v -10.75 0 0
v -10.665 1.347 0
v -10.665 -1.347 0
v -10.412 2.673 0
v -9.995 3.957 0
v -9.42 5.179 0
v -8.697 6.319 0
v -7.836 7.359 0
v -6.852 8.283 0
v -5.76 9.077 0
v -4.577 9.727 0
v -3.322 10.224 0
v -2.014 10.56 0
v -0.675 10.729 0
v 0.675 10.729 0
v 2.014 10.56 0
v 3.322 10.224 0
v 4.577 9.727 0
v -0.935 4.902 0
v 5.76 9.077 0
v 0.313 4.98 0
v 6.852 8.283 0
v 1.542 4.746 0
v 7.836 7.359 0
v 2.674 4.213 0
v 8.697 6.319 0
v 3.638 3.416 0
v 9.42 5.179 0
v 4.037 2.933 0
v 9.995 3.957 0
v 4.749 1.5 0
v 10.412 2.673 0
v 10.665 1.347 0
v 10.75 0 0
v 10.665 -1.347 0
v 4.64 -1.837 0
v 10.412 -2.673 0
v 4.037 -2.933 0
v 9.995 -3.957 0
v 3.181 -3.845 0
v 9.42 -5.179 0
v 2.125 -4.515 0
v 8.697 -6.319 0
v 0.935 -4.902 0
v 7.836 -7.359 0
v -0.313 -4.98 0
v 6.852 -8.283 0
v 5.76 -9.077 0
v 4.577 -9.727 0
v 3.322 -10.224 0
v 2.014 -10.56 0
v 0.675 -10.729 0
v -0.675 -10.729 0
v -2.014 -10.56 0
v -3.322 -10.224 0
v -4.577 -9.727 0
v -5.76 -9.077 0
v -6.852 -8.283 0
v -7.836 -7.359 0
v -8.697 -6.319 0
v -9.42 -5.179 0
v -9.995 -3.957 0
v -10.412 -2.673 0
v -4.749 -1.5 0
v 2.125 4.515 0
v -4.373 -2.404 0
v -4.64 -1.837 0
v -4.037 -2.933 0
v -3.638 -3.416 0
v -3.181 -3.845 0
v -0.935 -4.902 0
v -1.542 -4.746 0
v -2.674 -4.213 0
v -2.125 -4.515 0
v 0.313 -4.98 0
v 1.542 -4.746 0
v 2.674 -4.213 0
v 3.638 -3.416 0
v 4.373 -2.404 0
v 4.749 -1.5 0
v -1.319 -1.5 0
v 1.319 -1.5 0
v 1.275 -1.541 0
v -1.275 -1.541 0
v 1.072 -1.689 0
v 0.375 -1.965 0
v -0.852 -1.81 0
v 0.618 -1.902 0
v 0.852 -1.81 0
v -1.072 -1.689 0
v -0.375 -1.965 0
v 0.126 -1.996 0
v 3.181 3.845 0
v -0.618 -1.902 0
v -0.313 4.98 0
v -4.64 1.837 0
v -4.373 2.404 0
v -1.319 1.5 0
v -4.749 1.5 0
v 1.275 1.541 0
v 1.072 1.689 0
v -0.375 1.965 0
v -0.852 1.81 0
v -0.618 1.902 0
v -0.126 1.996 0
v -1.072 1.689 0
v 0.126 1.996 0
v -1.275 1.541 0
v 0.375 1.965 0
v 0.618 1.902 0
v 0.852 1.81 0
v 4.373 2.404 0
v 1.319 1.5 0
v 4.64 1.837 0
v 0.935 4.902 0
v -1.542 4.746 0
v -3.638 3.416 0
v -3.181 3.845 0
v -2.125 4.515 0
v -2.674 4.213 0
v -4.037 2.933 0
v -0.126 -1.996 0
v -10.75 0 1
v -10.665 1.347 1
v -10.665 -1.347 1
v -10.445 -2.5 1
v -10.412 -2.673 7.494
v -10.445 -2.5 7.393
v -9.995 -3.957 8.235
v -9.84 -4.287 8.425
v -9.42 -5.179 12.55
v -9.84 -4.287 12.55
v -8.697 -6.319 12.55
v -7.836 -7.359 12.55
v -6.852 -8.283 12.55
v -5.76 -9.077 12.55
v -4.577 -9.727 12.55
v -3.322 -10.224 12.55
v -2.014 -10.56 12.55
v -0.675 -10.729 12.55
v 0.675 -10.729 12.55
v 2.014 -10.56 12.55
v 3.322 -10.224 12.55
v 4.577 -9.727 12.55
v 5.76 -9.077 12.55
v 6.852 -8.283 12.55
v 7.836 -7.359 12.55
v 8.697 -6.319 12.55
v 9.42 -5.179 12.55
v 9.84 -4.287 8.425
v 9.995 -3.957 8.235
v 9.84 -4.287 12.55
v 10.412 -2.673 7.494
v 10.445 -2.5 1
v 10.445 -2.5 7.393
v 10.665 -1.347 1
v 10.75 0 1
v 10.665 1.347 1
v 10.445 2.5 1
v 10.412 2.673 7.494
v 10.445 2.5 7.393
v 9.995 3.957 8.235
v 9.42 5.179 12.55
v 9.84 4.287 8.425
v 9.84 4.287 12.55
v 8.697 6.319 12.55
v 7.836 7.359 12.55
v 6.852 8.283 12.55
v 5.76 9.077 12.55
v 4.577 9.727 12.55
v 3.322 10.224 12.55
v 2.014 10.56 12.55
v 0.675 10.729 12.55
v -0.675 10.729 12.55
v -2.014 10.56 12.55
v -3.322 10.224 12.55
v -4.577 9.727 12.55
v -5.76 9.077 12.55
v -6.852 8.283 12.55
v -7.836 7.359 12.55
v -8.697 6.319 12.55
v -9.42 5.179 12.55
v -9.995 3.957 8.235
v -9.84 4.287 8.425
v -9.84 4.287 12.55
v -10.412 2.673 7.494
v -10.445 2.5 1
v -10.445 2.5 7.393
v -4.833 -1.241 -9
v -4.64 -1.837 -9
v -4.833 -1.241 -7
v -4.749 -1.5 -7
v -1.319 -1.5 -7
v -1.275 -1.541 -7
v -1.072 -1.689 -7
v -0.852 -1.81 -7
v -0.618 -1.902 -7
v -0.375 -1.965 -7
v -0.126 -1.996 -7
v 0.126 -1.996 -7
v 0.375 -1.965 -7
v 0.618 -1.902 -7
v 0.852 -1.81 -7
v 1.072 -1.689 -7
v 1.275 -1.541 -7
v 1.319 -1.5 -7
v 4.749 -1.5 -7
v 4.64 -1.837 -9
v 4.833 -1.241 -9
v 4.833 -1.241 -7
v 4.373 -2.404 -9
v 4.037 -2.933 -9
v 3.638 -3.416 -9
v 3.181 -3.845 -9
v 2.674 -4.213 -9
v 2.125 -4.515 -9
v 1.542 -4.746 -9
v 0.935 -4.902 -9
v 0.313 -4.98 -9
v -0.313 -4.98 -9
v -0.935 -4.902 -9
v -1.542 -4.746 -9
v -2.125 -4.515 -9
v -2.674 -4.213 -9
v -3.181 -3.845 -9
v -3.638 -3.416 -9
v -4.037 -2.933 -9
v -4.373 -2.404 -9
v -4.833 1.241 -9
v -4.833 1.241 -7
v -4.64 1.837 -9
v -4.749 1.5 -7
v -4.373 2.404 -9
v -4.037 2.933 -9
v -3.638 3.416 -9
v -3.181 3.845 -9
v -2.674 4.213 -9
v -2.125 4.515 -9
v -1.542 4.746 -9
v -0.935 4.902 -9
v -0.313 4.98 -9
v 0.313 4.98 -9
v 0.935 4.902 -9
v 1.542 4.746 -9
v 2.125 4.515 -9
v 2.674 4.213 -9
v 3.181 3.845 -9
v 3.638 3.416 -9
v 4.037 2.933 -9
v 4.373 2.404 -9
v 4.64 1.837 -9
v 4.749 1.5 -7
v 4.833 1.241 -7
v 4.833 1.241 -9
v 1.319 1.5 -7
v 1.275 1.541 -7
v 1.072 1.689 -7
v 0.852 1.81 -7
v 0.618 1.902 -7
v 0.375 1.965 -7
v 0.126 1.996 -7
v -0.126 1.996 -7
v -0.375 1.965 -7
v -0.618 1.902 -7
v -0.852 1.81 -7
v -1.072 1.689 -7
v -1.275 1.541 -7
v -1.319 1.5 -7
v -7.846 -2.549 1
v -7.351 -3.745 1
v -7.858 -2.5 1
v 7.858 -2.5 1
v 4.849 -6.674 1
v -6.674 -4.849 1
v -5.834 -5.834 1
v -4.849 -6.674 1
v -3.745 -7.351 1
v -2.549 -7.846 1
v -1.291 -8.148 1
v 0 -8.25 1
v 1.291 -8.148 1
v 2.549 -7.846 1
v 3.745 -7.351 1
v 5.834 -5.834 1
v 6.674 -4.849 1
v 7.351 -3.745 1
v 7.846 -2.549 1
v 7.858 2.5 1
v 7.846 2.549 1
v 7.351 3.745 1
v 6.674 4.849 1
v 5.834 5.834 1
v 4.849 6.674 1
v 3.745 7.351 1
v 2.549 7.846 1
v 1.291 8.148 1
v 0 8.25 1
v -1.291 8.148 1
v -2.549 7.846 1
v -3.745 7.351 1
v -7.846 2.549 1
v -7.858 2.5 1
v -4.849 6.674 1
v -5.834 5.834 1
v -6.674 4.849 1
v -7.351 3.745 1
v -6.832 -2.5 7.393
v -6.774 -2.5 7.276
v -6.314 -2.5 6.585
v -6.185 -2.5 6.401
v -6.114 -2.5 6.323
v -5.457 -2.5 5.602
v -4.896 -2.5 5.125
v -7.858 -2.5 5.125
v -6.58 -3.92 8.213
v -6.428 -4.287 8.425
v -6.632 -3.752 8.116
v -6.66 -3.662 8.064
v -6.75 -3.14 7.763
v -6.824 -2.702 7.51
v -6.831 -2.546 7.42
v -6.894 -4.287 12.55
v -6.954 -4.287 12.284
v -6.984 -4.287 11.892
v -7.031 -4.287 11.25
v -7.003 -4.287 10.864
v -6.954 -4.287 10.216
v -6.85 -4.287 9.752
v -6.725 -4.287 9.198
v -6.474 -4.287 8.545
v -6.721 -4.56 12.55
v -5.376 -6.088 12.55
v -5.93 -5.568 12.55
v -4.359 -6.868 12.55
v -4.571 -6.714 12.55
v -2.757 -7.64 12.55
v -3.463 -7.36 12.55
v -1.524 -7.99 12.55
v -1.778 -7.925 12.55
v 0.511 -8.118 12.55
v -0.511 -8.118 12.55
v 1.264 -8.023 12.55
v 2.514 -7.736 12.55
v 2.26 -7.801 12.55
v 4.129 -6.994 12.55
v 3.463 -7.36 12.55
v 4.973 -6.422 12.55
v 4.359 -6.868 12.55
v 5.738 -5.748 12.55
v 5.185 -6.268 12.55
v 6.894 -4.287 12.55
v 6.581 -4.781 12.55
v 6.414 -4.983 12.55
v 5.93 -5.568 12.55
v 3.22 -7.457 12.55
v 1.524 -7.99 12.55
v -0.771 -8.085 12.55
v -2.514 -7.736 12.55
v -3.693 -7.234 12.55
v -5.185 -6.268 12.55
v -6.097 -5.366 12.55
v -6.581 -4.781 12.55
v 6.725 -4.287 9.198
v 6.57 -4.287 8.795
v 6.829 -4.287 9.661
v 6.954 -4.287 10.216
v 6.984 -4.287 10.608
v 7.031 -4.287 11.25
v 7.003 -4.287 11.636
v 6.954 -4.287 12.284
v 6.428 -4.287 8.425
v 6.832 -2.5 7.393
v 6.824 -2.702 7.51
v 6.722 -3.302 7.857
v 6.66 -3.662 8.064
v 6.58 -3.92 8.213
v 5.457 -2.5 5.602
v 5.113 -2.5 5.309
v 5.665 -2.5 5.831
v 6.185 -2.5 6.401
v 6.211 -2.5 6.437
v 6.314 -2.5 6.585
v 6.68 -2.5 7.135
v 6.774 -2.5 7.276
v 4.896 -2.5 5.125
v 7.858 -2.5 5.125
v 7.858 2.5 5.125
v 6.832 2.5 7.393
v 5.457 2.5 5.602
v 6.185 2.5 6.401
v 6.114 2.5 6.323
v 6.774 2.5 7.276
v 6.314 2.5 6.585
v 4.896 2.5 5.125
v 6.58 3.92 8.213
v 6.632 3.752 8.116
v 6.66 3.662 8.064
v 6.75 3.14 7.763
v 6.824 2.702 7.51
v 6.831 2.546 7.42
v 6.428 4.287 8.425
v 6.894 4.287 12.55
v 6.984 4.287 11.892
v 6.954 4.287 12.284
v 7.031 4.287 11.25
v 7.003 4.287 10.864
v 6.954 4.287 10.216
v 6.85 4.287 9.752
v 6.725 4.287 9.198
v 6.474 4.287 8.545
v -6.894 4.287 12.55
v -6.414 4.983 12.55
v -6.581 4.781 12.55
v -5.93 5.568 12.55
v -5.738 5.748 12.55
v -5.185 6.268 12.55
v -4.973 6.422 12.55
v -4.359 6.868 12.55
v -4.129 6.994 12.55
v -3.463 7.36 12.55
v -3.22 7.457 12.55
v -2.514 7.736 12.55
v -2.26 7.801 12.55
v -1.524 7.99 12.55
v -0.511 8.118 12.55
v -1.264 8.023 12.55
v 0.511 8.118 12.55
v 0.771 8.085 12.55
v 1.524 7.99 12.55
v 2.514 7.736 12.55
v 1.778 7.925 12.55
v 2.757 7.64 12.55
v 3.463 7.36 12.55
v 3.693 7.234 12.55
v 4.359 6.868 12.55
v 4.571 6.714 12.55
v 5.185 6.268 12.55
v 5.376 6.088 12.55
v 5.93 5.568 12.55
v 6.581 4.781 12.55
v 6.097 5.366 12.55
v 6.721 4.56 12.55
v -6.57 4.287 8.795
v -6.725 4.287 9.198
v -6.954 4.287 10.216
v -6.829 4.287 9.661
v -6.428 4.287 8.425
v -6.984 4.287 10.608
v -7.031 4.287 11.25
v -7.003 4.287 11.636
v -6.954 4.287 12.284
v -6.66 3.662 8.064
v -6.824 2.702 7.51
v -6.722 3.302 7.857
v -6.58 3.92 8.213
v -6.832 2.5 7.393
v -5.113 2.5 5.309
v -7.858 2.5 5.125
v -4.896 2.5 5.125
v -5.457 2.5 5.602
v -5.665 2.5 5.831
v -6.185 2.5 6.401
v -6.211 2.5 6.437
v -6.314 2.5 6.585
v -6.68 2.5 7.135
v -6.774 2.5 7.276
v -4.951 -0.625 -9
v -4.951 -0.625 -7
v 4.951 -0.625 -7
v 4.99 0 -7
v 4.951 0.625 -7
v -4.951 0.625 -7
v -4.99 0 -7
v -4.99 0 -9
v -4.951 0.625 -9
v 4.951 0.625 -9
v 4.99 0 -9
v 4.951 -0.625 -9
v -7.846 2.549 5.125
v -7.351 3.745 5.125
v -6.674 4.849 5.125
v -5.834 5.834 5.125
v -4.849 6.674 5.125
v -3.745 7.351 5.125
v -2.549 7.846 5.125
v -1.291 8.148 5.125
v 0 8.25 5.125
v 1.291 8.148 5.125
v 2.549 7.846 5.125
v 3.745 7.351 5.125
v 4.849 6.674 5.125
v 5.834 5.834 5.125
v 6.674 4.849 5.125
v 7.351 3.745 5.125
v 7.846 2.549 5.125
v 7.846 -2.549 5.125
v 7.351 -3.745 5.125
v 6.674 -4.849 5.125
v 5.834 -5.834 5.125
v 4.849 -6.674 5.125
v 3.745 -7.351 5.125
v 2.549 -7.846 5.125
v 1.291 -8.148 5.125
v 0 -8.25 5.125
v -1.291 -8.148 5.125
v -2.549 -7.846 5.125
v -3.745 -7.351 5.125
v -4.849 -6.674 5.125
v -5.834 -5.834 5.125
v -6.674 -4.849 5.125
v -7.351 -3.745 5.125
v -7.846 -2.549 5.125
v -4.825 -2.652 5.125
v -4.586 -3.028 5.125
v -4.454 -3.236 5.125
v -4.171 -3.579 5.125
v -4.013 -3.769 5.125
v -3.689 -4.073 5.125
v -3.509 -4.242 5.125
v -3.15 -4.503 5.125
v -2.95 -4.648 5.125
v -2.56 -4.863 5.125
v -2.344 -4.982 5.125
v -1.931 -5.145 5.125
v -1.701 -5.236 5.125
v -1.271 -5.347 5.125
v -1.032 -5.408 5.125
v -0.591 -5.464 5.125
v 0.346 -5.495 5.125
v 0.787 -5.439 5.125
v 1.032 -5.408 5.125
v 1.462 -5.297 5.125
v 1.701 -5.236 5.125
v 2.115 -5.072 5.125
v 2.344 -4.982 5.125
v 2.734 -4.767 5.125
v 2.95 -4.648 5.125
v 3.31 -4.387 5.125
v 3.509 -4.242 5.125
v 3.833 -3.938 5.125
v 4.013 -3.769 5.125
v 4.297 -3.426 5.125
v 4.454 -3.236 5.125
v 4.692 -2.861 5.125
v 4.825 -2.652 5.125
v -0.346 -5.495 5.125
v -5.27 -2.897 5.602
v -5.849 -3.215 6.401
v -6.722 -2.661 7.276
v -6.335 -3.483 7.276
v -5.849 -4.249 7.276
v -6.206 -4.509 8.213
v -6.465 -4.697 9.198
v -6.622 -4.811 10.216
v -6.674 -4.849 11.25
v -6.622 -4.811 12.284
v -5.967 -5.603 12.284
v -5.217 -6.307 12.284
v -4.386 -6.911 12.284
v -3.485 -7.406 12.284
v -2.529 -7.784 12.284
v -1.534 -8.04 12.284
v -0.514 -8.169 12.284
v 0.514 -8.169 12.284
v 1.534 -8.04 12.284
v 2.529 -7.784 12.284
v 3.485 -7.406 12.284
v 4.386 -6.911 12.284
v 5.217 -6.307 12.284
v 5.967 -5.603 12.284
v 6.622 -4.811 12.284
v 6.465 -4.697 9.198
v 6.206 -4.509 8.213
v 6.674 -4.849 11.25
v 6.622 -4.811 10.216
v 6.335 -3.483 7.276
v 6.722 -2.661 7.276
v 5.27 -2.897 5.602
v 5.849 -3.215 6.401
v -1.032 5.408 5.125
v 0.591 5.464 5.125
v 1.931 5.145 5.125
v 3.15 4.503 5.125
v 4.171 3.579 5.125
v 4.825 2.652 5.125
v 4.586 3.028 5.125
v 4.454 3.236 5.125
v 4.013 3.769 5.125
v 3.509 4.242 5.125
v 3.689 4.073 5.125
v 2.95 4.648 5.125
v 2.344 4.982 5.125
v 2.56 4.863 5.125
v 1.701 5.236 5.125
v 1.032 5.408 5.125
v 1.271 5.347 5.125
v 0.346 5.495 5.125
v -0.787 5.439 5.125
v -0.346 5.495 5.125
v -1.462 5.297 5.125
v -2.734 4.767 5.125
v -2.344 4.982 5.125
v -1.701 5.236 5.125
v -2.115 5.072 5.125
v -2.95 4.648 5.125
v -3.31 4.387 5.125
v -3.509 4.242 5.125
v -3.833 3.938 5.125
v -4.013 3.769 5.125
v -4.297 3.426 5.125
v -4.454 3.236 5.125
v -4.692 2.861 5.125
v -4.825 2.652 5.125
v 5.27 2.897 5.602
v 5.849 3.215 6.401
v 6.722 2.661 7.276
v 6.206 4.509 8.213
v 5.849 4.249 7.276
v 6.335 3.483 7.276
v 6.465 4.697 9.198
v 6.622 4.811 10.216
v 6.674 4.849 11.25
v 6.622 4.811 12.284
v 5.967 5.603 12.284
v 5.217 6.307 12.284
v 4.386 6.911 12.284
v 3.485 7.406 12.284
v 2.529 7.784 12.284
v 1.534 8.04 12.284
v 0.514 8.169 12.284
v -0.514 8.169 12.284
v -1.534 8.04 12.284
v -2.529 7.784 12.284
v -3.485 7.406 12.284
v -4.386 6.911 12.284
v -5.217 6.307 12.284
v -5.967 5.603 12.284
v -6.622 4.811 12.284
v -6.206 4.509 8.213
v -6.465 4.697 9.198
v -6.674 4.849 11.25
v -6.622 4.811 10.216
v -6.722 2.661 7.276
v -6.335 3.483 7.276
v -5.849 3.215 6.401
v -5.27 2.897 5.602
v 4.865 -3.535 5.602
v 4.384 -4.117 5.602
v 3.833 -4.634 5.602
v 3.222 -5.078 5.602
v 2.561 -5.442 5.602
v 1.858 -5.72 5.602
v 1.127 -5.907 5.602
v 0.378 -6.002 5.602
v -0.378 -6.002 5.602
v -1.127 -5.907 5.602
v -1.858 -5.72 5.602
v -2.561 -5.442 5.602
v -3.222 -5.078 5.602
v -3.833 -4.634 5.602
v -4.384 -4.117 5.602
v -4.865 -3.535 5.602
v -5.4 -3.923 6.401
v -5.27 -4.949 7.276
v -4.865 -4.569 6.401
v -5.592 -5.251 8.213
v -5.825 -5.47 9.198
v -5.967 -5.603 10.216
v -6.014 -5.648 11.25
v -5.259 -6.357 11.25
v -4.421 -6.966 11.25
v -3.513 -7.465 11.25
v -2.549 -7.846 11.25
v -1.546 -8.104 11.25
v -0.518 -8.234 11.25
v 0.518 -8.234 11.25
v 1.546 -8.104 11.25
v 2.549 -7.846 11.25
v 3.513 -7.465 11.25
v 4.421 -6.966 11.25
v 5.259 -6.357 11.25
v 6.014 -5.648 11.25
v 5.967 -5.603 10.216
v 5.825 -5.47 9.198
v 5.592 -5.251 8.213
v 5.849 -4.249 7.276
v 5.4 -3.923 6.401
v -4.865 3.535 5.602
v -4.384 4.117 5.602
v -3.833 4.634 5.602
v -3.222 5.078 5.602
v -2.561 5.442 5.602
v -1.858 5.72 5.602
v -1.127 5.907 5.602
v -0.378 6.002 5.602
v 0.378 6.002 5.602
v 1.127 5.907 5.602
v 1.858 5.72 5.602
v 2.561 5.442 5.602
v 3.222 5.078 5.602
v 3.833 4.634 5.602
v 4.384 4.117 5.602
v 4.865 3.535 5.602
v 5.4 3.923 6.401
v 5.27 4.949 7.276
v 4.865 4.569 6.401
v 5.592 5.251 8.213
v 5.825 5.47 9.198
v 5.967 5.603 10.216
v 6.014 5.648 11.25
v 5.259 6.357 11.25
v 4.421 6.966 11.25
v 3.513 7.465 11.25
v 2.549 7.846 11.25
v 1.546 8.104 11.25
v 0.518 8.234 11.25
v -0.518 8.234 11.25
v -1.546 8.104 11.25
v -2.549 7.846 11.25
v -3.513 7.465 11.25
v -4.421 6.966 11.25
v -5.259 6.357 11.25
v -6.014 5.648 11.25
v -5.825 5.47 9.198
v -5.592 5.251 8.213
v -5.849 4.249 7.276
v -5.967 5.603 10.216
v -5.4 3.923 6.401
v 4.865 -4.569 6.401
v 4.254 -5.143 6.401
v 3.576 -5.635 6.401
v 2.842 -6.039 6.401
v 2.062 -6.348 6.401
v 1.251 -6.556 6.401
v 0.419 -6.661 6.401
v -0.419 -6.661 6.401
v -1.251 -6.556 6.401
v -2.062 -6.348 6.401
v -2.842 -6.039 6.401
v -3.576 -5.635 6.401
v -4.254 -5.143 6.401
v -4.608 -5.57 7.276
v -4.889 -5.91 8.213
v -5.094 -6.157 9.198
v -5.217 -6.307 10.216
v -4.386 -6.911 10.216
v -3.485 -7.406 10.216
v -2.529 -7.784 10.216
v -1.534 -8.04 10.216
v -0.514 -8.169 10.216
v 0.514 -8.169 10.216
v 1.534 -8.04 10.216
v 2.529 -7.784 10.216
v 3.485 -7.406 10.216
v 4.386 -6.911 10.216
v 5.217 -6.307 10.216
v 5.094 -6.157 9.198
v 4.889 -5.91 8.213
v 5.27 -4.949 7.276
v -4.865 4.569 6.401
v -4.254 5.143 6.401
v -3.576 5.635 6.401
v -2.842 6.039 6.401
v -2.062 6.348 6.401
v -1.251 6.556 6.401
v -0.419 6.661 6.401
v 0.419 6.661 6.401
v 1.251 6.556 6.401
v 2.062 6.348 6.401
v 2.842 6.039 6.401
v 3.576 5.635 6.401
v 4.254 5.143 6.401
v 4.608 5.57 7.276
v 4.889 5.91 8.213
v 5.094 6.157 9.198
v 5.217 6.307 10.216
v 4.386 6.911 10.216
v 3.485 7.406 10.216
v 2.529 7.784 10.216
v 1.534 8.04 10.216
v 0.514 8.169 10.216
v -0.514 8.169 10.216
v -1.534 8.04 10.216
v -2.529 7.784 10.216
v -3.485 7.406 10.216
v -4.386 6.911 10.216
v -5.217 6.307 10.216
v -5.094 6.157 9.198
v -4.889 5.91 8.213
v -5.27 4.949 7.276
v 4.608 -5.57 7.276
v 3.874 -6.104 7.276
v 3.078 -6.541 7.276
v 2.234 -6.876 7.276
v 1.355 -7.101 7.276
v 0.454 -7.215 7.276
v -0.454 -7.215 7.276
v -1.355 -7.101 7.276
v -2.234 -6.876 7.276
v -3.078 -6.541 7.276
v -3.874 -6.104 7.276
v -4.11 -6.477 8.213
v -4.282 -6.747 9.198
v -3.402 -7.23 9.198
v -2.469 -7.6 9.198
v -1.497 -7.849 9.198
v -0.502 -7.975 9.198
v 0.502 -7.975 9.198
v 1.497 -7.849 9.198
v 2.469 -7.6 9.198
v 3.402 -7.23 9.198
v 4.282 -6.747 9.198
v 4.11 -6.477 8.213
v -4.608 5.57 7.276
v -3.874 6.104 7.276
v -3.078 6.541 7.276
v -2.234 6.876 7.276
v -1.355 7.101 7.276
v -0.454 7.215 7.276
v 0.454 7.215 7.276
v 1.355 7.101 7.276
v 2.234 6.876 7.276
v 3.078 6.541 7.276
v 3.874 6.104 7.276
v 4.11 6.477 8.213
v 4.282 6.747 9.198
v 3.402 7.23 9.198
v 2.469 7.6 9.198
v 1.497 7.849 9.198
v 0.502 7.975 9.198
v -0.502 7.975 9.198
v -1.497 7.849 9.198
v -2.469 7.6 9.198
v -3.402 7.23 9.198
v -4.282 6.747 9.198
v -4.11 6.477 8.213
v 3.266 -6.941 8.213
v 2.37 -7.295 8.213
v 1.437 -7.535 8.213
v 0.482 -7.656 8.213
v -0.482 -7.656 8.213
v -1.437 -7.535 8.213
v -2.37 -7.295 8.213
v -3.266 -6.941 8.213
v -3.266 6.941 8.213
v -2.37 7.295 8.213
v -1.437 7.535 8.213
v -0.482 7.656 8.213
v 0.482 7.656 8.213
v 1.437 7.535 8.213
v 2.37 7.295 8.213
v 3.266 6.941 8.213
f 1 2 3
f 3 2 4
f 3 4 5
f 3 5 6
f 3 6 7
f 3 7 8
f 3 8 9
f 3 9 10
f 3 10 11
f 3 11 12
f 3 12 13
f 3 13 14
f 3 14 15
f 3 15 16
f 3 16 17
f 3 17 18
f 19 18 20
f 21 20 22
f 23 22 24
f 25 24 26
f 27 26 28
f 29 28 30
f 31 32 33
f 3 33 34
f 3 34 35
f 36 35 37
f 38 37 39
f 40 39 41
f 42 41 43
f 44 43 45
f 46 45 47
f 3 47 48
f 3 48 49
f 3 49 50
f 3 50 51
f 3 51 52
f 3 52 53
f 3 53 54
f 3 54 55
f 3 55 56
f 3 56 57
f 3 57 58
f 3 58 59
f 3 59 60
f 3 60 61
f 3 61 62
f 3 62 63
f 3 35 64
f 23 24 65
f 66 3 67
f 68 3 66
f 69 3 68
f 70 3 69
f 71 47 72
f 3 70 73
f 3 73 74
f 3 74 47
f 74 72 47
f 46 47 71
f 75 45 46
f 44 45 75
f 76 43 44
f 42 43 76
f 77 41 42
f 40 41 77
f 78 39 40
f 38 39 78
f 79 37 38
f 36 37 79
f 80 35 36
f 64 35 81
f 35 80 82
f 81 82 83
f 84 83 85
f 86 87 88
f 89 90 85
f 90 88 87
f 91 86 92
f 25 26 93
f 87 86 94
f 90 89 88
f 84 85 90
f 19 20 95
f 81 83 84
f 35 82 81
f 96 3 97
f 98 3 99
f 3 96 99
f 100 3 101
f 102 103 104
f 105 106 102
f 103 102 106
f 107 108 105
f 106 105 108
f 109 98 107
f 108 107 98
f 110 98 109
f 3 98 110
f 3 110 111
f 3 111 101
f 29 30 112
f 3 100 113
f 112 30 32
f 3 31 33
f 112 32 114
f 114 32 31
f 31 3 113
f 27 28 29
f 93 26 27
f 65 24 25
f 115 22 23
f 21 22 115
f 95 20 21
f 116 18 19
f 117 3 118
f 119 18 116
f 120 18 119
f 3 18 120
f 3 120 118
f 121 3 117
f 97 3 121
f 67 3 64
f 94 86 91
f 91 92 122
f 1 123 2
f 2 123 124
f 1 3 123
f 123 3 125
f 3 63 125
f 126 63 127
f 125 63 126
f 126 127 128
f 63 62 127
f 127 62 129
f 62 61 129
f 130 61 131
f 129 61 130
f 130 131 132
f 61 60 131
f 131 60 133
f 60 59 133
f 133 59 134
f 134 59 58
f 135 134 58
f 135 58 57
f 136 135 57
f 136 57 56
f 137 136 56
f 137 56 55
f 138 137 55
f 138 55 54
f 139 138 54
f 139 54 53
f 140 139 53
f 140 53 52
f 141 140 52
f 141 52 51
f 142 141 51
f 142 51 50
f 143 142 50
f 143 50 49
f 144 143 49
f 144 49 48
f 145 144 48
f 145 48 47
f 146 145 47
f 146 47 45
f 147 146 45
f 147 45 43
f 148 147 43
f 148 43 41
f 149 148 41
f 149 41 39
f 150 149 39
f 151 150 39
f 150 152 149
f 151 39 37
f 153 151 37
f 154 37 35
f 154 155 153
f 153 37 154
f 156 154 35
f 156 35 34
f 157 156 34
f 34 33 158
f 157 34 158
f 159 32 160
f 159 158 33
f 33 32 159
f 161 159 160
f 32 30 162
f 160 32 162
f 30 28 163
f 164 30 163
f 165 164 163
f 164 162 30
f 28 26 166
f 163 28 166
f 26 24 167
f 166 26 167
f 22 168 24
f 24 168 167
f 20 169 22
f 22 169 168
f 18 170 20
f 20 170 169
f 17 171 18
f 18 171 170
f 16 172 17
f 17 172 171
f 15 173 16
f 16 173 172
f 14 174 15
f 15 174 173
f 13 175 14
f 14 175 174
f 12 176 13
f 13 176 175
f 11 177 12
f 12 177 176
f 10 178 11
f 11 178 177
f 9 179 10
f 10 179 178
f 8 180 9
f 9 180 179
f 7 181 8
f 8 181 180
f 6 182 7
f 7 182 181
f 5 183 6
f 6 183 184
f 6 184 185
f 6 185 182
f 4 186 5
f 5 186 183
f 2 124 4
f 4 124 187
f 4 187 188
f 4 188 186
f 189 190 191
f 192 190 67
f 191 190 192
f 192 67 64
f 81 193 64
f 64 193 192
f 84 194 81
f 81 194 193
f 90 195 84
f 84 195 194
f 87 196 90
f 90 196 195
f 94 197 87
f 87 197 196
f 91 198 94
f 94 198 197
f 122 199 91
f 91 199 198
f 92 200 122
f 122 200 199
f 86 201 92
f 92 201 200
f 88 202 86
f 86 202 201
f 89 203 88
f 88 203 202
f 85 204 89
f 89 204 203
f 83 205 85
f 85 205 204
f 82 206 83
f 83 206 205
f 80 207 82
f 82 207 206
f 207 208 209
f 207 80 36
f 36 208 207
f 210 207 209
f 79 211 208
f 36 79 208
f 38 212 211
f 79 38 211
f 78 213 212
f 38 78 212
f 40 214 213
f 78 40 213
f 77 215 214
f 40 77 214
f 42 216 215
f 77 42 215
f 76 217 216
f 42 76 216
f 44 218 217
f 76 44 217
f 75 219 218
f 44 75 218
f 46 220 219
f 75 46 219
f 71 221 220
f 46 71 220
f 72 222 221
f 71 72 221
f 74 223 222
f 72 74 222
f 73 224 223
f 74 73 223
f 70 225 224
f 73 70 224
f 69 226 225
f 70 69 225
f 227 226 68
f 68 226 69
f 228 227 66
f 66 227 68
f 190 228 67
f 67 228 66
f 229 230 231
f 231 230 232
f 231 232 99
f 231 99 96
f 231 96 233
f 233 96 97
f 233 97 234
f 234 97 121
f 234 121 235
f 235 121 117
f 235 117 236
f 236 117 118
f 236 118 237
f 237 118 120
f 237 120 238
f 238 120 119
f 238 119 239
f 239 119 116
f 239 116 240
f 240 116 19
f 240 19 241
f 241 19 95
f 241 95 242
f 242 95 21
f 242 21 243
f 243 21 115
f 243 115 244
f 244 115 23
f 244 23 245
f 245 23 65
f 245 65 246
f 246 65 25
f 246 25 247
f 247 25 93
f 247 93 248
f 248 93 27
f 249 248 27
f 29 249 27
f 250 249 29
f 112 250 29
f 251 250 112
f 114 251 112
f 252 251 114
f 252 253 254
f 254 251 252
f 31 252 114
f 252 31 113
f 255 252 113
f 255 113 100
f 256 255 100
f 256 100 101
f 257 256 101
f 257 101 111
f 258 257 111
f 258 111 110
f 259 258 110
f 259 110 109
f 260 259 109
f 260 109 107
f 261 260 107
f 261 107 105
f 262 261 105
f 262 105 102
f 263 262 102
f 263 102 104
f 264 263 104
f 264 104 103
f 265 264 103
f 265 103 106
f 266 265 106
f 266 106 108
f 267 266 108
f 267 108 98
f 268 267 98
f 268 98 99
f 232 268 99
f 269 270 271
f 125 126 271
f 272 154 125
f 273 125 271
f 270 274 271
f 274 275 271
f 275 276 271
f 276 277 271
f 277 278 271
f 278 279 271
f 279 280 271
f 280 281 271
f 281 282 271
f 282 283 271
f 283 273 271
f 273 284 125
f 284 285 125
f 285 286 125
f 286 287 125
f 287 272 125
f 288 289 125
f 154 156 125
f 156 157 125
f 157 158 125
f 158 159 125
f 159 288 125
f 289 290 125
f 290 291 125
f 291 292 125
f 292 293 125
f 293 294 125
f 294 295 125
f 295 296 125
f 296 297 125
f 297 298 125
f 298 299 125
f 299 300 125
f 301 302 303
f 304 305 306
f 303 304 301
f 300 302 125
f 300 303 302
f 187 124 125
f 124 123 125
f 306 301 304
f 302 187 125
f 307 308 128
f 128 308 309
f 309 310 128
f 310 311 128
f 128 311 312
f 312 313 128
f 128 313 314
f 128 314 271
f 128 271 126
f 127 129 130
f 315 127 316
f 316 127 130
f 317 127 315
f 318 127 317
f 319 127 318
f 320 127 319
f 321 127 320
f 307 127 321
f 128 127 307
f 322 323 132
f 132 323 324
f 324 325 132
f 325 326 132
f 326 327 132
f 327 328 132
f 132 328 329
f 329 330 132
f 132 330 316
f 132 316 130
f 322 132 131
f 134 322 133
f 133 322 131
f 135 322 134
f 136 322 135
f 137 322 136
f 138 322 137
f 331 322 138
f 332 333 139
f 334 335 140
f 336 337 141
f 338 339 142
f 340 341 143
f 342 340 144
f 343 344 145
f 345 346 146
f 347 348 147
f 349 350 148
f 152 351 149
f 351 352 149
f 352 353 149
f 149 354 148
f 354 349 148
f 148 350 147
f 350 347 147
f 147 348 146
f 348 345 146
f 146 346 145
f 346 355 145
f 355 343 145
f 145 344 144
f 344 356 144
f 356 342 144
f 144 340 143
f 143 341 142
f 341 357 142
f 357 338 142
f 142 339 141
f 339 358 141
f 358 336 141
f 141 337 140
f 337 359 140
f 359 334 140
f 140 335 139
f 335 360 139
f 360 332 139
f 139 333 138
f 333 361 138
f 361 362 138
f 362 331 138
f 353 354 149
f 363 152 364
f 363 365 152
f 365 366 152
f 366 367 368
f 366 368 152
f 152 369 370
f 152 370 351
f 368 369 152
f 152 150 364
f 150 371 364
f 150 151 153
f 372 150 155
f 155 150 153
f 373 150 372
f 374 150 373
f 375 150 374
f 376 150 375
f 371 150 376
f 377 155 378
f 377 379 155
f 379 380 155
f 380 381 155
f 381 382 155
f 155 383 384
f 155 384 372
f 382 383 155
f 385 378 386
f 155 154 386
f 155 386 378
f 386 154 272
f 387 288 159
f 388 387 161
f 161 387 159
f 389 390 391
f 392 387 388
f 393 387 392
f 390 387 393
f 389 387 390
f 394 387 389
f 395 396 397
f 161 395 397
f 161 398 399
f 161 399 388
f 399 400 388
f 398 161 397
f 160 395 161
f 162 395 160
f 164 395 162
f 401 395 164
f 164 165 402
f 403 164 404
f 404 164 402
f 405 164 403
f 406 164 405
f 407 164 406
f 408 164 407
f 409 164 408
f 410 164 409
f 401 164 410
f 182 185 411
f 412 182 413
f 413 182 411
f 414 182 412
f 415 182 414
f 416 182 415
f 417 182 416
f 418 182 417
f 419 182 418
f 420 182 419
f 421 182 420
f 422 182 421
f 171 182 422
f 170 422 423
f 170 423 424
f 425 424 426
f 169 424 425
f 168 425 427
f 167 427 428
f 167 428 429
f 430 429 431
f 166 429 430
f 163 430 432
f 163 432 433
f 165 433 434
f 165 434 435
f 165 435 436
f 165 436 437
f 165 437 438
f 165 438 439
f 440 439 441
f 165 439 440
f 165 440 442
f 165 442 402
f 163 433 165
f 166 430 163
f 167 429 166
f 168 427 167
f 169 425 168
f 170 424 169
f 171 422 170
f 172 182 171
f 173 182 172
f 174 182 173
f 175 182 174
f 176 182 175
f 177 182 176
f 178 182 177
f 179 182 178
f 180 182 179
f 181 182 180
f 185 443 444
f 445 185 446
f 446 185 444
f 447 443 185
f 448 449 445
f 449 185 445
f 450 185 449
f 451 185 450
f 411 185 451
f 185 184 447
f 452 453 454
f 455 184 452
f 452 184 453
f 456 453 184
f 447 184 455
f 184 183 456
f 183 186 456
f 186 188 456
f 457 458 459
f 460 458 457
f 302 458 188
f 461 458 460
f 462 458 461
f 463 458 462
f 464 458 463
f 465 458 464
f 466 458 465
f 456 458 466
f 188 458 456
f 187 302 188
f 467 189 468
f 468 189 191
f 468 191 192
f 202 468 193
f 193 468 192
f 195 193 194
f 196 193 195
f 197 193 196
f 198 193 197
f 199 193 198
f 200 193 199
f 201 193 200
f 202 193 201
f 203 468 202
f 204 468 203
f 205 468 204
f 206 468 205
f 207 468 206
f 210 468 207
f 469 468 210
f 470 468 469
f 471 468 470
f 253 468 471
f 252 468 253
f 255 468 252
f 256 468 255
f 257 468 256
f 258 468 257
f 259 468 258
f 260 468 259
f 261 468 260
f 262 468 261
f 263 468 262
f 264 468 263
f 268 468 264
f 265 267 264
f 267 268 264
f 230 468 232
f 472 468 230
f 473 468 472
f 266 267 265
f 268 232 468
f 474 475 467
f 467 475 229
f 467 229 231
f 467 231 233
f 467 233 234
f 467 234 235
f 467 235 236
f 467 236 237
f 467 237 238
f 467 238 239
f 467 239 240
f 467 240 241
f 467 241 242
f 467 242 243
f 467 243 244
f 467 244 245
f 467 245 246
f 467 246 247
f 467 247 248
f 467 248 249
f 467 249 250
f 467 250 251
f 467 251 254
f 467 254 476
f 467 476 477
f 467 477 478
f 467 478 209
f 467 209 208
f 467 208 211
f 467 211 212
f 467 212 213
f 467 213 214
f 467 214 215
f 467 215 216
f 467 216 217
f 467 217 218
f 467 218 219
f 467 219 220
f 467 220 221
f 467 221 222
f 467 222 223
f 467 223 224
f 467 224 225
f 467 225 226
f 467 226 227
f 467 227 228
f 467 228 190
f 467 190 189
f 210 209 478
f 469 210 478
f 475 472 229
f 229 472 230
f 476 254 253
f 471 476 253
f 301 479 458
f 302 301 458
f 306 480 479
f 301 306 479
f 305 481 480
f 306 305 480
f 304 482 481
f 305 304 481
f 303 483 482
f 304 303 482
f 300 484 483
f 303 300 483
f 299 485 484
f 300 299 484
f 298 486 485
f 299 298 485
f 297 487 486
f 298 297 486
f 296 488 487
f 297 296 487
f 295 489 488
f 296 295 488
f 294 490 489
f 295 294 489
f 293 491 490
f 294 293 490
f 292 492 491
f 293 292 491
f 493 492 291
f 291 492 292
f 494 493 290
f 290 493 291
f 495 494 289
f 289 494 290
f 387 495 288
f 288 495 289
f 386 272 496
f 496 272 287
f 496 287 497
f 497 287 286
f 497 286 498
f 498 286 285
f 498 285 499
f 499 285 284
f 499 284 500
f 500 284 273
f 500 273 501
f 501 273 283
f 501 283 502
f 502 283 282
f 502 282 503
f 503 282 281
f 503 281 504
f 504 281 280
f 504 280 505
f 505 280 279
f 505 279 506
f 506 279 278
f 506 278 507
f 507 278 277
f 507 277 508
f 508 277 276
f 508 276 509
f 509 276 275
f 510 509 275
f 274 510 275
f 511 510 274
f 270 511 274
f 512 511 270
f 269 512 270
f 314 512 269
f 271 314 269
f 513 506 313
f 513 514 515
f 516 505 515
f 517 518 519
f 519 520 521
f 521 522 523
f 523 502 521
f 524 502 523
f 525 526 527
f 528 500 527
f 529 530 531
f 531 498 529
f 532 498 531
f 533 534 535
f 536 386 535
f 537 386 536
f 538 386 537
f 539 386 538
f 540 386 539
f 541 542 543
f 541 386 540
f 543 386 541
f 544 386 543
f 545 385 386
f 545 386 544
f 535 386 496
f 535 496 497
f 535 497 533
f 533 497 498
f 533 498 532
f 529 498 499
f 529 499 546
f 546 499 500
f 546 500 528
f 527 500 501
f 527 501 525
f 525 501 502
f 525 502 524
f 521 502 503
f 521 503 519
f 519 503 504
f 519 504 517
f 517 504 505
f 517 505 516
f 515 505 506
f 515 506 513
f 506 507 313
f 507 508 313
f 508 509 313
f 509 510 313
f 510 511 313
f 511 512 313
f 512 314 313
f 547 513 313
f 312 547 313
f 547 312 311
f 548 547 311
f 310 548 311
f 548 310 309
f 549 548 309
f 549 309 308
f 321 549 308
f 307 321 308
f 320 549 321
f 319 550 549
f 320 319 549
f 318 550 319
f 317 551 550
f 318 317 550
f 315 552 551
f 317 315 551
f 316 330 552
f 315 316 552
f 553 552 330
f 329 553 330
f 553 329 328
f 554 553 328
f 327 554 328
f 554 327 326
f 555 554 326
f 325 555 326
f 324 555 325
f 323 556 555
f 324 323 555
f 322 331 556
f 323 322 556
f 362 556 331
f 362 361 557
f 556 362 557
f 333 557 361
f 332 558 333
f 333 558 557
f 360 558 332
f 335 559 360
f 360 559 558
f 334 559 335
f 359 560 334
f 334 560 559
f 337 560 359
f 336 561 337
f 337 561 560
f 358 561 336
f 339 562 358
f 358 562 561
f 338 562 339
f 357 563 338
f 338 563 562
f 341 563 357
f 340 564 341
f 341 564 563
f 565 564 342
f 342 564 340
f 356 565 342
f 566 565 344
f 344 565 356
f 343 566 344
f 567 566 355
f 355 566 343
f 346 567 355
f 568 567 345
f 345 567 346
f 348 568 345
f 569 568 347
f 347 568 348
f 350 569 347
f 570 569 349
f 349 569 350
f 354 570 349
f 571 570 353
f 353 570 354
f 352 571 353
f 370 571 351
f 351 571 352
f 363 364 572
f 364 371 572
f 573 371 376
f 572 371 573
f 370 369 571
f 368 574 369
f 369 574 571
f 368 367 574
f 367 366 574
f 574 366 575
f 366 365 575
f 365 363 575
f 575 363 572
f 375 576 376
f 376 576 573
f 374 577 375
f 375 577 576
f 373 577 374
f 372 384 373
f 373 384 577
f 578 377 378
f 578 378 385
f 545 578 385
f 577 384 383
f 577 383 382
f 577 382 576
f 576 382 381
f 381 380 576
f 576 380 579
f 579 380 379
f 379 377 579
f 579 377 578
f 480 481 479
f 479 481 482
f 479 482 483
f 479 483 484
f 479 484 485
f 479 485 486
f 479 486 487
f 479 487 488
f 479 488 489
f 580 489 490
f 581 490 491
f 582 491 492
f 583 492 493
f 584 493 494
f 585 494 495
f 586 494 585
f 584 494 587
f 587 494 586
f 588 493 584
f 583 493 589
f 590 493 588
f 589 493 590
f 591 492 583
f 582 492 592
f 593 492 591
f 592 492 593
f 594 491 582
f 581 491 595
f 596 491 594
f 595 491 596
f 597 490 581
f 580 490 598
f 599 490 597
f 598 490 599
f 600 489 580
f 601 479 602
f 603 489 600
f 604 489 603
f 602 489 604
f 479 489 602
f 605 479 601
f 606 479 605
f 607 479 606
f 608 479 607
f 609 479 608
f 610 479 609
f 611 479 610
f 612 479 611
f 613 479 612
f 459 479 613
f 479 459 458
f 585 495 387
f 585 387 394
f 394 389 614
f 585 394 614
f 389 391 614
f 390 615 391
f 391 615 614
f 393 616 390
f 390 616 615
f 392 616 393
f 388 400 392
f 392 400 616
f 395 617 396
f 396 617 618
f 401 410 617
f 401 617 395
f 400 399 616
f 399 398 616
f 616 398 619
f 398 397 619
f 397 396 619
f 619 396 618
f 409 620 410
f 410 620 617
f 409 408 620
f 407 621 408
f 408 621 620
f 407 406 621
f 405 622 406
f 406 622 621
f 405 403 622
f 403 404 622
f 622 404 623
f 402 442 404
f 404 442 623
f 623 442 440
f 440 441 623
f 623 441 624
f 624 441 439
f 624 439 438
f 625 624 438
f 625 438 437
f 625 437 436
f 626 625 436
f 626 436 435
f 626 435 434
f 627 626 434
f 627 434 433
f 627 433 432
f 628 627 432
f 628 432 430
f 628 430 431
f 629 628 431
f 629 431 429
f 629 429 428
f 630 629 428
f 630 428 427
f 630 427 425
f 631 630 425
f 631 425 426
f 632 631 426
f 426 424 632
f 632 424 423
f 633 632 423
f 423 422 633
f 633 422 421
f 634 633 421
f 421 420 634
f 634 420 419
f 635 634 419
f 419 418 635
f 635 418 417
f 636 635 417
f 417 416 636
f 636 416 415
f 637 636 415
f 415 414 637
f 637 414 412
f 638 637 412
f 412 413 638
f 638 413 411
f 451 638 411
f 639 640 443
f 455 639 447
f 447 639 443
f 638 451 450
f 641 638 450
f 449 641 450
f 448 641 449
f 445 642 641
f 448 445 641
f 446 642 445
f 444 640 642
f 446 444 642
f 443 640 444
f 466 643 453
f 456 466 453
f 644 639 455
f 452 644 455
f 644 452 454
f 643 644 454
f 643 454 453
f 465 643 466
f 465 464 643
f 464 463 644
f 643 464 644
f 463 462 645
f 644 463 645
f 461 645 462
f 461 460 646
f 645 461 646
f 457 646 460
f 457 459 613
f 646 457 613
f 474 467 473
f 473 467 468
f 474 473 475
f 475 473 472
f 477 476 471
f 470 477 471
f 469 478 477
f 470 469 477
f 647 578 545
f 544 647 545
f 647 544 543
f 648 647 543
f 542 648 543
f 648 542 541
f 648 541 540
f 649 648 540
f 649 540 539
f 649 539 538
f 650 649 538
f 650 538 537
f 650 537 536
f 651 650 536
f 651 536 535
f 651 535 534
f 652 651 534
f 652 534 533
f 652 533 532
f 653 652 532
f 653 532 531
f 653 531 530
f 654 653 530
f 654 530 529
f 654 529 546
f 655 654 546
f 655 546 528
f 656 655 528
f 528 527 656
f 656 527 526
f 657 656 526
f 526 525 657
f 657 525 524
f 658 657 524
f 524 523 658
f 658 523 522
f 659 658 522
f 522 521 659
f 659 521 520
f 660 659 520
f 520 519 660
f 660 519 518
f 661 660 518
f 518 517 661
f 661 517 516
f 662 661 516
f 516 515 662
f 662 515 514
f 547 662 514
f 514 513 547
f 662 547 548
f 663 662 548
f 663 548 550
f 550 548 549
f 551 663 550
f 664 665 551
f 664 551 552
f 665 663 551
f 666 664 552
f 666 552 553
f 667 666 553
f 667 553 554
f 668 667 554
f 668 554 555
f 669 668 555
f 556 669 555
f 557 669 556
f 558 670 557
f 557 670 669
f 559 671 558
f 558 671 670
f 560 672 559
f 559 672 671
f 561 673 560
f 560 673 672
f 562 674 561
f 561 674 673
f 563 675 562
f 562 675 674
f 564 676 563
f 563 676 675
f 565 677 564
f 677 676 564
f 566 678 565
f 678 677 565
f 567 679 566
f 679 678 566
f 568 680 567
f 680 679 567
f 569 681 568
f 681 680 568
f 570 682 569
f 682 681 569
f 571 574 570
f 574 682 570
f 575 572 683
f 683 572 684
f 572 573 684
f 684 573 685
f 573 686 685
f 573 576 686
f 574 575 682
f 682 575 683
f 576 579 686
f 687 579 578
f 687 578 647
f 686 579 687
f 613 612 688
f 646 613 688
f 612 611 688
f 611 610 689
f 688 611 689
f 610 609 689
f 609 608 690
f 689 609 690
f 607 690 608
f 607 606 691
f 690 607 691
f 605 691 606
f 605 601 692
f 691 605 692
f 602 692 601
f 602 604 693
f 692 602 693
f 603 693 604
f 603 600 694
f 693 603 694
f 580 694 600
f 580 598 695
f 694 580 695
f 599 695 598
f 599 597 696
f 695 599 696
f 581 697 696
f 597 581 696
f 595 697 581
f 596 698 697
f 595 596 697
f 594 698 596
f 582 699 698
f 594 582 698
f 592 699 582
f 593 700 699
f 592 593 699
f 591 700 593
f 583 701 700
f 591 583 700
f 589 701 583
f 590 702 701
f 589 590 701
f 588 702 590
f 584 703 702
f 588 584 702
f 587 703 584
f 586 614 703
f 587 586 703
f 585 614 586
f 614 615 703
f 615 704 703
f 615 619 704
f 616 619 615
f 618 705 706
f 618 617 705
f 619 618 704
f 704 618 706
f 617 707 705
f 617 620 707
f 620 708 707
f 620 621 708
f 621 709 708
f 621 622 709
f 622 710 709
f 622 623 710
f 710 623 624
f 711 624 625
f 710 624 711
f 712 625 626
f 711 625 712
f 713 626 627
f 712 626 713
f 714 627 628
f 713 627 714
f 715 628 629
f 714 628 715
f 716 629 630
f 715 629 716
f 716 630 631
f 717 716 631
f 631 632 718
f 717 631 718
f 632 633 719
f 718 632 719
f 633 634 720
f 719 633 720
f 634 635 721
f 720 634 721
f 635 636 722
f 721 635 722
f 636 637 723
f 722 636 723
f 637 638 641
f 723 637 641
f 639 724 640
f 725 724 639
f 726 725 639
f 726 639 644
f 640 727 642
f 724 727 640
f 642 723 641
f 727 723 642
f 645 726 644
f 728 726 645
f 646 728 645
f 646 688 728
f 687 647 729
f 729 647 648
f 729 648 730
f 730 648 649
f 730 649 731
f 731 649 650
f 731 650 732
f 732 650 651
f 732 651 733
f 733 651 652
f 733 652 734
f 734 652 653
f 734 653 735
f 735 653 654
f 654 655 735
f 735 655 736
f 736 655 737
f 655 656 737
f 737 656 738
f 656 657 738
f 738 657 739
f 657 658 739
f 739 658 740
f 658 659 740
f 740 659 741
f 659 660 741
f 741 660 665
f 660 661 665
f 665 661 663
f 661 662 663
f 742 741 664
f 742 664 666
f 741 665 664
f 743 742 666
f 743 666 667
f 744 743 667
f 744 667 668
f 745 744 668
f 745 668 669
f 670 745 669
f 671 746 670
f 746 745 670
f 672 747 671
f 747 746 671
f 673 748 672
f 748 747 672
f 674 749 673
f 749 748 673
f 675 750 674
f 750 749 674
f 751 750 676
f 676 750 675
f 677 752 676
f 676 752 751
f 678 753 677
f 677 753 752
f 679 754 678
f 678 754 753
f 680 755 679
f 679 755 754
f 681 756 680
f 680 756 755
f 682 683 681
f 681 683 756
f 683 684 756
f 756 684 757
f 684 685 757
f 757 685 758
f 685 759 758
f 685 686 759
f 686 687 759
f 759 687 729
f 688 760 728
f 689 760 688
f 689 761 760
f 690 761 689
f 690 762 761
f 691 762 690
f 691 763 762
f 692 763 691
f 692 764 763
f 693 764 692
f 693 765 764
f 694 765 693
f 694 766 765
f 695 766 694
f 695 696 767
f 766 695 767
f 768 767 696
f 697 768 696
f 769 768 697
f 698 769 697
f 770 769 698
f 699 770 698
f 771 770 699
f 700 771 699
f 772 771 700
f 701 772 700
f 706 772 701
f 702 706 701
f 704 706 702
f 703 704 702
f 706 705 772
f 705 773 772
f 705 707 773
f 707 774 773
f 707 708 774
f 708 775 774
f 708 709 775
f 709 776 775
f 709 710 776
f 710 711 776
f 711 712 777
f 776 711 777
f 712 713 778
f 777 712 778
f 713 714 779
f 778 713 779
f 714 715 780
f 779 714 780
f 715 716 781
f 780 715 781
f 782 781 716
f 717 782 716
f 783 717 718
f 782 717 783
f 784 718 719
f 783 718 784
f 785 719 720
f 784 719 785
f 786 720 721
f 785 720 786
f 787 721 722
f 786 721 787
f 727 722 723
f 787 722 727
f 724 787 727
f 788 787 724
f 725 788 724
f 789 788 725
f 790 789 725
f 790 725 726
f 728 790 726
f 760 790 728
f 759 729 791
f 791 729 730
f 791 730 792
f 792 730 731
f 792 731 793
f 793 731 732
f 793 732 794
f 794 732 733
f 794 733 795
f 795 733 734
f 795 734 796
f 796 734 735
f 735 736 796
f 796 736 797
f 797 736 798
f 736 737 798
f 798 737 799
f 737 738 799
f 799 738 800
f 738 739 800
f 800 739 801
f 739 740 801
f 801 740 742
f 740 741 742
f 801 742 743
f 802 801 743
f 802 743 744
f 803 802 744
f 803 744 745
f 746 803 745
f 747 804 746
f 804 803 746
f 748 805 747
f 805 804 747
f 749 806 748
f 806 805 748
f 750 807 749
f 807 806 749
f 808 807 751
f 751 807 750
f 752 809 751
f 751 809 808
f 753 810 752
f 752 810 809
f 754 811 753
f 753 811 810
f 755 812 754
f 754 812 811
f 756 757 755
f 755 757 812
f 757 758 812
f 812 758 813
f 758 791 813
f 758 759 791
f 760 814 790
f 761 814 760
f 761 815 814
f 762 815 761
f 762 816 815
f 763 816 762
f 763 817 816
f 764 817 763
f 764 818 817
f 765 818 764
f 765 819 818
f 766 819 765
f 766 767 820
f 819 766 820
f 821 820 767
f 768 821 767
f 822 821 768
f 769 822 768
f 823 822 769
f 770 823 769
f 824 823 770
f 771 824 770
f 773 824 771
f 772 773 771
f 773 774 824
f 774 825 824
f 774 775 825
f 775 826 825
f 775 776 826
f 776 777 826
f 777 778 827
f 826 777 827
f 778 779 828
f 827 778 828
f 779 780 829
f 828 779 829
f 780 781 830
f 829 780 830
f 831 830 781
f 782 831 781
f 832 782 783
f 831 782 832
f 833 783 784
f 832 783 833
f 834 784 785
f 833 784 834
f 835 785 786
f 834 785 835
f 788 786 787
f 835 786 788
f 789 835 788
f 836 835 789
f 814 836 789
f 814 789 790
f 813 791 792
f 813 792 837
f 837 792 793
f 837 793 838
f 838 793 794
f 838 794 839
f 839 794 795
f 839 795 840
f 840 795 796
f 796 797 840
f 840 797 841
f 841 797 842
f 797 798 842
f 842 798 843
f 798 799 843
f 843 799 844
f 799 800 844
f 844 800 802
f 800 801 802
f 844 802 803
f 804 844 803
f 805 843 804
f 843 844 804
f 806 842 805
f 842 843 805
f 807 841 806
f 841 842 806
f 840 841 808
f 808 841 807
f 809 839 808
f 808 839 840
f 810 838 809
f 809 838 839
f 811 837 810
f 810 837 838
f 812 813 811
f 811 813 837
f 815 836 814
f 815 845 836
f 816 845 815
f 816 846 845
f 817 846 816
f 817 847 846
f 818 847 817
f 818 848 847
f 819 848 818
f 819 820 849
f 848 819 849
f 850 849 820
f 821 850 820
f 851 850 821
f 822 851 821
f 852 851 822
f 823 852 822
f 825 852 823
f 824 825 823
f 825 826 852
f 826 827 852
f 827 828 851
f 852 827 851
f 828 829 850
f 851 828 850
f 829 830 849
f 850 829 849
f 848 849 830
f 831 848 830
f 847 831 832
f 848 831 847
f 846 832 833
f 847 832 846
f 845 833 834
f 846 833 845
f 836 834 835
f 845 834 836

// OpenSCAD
ballDiameter = 16.5;
holeSize = 3;
wallThickness = 2.5;
gapWidth = 5;
baseThickness = 1;

baseHeight = ballDiameter+wallThickness*2;
baseWidth = wallThickness*4+ballDiameter;

module mainShape(){
	// translate([-baseWidth/2, -wallThickness-holeSize/2]) cube([baseWidth, wallThickness*2+holeSize, baseThickness]);
	
	// translate([baseHeight/2+wallThickness,0,0]) cylinder(baseThickness, holeSize/2+wallThickness,holeSize/2+wallThickness,$fn=40);
	// translate([-baseHeight/2-wallThickness,0,0]) cylinder(baseThickness, holeSize/2+wallThickness,holeSize/2+wallThickness,$fn=40);

	cylinder(baseThickness+ballDiameter*0.7,baseHeight/2, baseHeight/2, $fn=50);
}

module cutout(){
	translate([0,0,ballDiameter/2+holeSize]) sphere(ballDiameter/2, $fn=50);
	translate([-baseHeight/2-2,-gapWidth/2,baseThickness]) cube([baseHeight+4,gapWidth,ballDiameter]);
	translate([-baseHeight/2-2,0,baseThickness+ballDiameter*0.6]) rotate([0,90]) cylinder(baseHeight+4,ballDiameter*0.3,ballDiameter*0.3,$fn=6);
	translate([0,0,baseThickness]) cylinder(ballDiameter/4, ballDiameter/2, ballDiameter/2, $fn=40);
}

module mountingHoles(){
	translate([ballDiameter/2+wallThickness*2,0,-1]) cylinder(baseThickness+2, holeSize/2, holeSize/2, $fn=30);
	translate([-(ballDiameter/2+wallThickness*2),0,-1]) cylinder(baseThickness+2, holeSize/2, holeSize/2, $fn=30);
}

module head(){
      translate([0, 0, -9]) cylinder(h=9.1, r=4.99, $fn=50);
}

module headCutout(){
      translate([0, 0, -7]) cylinder(7.1, 2, 2, $fn=50);
      translate([-baseHeight/2,-gapWidth/2+1,-7]) cube([baseHeight,gapWidth-2,ballDiameter+2]);
}

difference(){
	mainShape();
	cutout();
	// mountingHoles();
}

difference() {
    head();
	headCutout();
}
